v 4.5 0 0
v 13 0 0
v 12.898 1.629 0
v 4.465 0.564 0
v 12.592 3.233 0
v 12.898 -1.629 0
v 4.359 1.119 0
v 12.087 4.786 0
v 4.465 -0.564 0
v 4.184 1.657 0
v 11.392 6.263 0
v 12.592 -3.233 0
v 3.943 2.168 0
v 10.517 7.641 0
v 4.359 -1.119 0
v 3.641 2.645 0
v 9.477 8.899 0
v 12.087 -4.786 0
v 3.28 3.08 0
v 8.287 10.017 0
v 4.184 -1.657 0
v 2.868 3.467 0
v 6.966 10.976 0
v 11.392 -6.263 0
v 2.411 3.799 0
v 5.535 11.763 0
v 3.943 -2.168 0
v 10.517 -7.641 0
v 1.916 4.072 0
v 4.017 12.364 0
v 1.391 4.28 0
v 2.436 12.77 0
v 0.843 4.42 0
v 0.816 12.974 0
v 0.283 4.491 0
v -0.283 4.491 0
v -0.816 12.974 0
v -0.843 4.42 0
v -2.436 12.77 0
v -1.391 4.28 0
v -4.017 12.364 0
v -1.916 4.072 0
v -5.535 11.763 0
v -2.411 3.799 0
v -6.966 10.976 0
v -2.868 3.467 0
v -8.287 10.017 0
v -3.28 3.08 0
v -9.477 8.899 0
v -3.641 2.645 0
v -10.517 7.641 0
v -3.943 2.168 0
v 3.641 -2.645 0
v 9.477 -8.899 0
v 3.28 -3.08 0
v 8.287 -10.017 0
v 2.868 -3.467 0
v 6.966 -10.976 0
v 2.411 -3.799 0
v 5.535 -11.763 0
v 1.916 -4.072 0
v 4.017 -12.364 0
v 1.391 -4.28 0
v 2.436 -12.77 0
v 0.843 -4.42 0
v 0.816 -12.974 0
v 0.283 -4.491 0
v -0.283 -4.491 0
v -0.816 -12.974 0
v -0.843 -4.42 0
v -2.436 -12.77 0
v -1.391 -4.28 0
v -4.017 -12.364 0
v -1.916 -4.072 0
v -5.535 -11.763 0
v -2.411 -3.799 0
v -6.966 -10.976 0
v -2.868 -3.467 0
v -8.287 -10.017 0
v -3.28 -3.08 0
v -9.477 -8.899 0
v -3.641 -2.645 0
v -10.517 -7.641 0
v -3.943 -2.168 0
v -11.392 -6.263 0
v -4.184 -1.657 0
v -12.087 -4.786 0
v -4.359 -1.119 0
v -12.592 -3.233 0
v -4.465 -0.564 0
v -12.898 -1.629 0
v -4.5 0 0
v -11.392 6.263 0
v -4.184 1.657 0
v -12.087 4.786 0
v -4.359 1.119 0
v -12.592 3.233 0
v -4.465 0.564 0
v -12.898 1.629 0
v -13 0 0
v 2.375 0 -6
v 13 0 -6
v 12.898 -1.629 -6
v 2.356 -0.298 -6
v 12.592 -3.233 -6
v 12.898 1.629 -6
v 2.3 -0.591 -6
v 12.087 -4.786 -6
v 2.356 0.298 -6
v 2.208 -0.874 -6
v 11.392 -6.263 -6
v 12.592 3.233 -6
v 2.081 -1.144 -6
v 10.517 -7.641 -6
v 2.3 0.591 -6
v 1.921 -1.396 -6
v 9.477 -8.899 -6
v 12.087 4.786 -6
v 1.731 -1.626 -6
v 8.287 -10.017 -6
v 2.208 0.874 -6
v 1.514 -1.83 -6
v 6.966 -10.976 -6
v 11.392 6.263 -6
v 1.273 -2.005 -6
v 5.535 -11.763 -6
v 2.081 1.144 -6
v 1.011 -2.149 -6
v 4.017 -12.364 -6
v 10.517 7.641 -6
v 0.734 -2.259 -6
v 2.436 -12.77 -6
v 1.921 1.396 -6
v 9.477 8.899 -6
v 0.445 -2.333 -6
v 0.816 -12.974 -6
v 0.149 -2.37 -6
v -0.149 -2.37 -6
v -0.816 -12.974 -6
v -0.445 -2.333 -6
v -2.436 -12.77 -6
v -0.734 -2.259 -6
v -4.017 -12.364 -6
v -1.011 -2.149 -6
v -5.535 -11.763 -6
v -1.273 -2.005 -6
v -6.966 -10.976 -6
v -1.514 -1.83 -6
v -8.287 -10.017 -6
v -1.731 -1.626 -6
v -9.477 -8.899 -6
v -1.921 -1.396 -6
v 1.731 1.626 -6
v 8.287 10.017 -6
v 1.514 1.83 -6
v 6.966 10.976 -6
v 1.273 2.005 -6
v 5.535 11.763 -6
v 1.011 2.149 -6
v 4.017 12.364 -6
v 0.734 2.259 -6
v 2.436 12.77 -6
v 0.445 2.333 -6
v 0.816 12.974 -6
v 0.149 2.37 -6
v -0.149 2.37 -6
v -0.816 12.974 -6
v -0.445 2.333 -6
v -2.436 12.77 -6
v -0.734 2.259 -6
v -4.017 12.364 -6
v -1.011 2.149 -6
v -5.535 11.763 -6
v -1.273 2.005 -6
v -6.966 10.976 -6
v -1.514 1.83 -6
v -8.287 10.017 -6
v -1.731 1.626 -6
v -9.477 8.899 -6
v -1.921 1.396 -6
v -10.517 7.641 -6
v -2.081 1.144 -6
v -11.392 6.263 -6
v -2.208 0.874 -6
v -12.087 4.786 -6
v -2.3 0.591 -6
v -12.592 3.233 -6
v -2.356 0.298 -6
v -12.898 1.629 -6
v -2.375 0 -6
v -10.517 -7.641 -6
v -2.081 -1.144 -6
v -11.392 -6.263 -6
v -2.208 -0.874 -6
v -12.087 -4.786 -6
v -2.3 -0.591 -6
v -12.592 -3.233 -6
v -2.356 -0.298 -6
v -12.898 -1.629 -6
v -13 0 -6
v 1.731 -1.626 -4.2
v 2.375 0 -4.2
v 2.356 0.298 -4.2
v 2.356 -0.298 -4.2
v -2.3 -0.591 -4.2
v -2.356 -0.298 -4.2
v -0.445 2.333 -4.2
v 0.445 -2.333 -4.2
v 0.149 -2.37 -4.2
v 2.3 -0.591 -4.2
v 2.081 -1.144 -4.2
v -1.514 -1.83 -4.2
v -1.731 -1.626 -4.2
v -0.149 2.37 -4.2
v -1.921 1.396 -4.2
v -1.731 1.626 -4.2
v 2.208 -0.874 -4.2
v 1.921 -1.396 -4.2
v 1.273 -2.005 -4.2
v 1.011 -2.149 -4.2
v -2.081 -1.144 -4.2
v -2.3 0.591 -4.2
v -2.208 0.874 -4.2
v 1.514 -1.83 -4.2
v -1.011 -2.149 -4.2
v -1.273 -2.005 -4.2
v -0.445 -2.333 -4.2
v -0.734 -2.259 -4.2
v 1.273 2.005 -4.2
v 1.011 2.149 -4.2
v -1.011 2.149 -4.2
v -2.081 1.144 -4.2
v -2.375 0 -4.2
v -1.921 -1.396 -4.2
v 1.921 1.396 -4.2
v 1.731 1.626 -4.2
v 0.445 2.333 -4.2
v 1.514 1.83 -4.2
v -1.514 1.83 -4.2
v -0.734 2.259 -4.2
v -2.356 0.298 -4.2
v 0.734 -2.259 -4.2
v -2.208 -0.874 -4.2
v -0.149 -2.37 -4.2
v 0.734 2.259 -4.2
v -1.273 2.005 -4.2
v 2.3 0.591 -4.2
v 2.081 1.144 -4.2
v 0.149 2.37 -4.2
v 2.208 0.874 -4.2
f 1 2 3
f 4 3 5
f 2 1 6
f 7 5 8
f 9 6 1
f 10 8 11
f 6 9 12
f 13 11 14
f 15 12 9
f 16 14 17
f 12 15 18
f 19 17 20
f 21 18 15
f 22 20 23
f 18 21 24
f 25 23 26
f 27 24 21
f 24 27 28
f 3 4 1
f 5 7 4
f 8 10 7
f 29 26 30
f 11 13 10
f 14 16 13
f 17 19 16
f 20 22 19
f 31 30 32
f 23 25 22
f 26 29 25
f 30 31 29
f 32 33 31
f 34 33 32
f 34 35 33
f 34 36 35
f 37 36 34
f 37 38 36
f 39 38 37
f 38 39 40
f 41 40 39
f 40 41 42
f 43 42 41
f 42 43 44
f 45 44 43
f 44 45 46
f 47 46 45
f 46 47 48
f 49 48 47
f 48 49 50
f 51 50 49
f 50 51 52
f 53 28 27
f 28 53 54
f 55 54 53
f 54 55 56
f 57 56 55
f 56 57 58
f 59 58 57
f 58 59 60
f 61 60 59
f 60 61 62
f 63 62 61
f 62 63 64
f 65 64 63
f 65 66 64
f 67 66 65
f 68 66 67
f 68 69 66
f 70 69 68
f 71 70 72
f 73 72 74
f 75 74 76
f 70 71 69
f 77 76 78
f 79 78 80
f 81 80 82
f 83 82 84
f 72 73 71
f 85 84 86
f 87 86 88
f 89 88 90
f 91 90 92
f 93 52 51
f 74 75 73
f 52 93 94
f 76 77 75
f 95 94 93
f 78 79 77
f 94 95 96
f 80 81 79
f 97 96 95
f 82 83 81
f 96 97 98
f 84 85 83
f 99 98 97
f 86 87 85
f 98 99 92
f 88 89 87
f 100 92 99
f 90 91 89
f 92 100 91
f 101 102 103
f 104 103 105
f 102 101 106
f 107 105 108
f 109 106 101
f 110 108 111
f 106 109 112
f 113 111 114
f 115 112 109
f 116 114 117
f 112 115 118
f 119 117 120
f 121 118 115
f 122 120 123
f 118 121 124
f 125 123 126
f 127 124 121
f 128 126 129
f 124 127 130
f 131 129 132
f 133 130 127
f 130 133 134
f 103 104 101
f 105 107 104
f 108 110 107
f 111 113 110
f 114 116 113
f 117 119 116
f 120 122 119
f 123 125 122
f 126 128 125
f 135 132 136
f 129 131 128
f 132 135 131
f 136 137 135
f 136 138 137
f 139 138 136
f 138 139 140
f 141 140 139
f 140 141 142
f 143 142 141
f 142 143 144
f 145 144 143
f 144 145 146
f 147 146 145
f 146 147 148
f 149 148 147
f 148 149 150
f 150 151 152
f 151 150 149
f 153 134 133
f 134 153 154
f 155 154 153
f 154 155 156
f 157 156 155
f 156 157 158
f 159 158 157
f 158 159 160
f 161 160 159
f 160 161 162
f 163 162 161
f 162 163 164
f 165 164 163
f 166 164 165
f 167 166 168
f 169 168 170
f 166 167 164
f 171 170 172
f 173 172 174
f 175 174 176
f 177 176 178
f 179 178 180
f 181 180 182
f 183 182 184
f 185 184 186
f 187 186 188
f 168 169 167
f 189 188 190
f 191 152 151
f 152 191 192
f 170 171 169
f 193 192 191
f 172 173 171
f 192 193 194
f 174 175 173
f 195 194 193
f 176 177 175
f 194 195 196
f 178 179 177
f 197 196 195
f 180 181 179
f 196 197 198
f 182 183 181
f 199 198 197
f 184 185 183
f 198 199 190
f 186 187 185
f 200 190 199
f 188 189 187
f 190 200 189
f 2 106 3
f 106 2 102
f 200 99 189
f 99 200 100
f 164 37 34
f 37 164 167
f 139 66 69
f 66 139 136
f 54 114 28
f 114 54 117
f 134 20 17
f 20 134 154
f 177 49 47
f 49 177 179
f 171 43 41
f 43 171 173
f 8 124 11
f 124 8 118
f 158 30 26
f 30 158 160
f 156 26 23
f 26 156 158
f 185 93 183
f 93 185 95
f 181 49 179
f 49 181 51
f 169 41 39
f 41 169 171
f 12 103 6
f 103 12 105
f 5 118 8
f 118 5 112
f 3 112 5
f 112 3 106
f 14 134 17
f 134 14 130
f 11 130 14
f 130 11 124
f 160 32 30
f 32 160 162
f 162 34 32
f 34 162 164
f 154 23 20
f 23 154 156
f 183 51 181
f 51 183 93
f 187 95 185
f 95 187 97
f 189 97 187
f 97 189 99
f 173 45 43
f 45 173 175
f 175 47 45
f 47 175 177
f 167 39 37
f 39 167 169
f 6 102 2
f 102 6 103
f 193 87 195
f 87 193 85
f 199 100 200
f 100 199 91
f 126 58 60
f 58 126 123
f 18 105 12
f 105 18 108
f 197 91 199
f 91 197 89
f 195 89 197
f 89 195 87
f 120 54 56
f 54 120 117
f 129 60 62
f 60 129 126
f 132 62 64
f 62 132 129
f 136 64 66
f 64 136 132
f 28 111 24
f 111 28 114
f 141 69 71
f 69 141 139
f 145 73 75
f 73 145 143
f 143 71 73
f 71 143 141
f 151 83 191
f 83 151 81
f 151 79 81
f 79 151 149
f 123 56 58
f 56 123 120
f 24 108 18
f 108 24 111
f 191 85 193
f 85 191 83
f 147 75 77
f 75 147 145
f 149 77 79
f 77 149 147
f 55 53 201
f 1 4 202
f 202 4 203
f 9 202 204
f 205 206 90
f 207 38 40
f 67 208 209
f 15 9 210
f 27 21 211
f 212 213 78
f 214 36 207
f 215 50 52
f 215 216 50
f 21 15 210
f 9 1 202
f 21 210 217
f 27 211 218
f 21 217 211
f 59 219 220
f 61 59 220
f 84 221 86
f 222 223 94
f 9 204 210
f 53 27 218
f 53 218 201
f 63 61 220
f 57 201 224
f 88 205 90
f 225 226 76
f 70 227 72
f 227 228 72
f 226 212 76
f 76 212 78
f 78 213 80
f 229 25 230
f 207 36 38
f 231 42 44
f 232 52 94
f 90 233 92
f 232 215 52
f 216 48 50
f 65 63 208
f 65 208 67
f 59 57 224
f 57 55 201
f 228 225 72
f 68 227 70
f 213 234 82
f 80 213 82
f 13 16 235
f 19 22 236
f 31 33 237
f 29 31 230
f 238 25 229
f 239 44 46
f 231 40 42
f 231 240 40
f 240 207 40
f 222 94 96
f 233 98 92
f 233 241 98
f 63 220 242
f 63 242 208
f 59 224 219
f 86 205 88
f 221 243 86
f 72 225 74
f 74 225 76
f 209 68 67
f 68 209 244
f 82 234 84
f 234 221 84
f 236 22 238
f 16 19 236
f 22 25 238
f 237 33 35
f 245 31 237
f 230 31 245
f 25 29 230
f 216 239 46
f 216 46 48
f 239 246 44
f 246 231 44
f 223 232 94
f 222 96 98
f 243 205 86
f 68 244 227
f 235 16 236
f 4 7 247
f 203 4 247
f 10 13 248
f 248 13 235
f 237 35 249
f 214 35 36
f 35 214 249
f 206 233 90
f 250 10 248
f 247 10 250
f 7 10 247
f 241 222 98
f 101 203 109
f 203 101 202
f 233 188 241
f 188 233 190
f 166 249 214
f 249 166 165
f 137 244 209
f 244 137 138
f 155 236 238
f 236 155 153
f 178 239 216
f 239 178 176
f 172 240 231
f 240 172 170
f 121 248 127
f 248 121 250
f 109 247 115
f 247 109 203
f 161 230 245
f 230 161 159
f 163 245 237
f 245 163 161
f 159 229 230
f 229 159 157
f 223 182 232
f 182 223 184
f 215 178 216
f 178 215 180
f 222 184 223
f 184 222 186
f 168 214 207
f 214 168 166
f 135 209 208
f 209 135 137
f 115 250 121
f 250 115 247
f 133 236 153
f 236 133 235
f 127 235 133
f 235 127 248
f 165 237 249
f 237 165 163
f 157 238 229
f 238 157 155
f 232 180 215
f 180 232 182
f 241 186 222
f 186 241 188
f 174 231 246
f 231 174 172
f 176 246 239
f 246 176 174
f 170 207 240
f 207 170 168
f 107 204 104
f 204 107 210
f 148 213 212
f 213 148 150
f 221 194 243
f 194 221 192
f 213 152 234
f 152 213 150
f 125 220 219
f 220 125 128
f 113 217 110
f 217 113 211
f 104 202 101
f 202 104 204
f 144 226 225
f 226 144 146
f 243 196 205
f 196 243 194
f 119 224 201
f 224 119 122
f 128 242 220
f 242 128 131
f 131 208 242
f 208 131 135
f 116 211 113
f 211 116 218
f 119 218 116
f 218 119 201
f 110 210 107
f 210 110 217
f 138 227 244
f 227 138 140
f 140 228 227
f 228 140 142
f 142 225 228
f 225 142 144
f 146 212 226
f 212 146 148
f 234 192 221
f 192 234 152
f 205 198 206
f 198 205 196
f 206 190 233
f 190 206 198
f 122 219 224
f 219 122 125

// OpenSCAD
$fn = 50;


difference() {
	union() {
		translate(v = [0, 0, -6.0000000000]) {
			cylinder(h = 6, r = 10.0000000000);
		}
		translate(v = [0, 0, -6.0000000000]) {
			cylinder(h = 6, r = 13.0000000000);
		}
	}
	union() {
		translate(v = [0, 0, 0]) {
			rotate(a = [0, 0, 0]) {
				difference() {
					union() {
						#translate(v = [0, 0, -6.0000000000]) {
							cylinder(h = 6, r = 2.2500000000);
						}
						#translate(v = [0, 0, -4.2000000000]) {
							cylinder(h = 4.2000000000, r1 = 2.3750000000, r2 = 4.5000000000);
						}
						#translate(v = [0, 0, -6.0000000000]) {
							cylinder(h = 6, r = 2.3750000000);
						}
						#translate(v = [0, 0, -6.0000000000]) {
							cylinder(h = 6, r = 2.2500000000);
						}
					}
					union();
				}
			}
		}
	}
}
